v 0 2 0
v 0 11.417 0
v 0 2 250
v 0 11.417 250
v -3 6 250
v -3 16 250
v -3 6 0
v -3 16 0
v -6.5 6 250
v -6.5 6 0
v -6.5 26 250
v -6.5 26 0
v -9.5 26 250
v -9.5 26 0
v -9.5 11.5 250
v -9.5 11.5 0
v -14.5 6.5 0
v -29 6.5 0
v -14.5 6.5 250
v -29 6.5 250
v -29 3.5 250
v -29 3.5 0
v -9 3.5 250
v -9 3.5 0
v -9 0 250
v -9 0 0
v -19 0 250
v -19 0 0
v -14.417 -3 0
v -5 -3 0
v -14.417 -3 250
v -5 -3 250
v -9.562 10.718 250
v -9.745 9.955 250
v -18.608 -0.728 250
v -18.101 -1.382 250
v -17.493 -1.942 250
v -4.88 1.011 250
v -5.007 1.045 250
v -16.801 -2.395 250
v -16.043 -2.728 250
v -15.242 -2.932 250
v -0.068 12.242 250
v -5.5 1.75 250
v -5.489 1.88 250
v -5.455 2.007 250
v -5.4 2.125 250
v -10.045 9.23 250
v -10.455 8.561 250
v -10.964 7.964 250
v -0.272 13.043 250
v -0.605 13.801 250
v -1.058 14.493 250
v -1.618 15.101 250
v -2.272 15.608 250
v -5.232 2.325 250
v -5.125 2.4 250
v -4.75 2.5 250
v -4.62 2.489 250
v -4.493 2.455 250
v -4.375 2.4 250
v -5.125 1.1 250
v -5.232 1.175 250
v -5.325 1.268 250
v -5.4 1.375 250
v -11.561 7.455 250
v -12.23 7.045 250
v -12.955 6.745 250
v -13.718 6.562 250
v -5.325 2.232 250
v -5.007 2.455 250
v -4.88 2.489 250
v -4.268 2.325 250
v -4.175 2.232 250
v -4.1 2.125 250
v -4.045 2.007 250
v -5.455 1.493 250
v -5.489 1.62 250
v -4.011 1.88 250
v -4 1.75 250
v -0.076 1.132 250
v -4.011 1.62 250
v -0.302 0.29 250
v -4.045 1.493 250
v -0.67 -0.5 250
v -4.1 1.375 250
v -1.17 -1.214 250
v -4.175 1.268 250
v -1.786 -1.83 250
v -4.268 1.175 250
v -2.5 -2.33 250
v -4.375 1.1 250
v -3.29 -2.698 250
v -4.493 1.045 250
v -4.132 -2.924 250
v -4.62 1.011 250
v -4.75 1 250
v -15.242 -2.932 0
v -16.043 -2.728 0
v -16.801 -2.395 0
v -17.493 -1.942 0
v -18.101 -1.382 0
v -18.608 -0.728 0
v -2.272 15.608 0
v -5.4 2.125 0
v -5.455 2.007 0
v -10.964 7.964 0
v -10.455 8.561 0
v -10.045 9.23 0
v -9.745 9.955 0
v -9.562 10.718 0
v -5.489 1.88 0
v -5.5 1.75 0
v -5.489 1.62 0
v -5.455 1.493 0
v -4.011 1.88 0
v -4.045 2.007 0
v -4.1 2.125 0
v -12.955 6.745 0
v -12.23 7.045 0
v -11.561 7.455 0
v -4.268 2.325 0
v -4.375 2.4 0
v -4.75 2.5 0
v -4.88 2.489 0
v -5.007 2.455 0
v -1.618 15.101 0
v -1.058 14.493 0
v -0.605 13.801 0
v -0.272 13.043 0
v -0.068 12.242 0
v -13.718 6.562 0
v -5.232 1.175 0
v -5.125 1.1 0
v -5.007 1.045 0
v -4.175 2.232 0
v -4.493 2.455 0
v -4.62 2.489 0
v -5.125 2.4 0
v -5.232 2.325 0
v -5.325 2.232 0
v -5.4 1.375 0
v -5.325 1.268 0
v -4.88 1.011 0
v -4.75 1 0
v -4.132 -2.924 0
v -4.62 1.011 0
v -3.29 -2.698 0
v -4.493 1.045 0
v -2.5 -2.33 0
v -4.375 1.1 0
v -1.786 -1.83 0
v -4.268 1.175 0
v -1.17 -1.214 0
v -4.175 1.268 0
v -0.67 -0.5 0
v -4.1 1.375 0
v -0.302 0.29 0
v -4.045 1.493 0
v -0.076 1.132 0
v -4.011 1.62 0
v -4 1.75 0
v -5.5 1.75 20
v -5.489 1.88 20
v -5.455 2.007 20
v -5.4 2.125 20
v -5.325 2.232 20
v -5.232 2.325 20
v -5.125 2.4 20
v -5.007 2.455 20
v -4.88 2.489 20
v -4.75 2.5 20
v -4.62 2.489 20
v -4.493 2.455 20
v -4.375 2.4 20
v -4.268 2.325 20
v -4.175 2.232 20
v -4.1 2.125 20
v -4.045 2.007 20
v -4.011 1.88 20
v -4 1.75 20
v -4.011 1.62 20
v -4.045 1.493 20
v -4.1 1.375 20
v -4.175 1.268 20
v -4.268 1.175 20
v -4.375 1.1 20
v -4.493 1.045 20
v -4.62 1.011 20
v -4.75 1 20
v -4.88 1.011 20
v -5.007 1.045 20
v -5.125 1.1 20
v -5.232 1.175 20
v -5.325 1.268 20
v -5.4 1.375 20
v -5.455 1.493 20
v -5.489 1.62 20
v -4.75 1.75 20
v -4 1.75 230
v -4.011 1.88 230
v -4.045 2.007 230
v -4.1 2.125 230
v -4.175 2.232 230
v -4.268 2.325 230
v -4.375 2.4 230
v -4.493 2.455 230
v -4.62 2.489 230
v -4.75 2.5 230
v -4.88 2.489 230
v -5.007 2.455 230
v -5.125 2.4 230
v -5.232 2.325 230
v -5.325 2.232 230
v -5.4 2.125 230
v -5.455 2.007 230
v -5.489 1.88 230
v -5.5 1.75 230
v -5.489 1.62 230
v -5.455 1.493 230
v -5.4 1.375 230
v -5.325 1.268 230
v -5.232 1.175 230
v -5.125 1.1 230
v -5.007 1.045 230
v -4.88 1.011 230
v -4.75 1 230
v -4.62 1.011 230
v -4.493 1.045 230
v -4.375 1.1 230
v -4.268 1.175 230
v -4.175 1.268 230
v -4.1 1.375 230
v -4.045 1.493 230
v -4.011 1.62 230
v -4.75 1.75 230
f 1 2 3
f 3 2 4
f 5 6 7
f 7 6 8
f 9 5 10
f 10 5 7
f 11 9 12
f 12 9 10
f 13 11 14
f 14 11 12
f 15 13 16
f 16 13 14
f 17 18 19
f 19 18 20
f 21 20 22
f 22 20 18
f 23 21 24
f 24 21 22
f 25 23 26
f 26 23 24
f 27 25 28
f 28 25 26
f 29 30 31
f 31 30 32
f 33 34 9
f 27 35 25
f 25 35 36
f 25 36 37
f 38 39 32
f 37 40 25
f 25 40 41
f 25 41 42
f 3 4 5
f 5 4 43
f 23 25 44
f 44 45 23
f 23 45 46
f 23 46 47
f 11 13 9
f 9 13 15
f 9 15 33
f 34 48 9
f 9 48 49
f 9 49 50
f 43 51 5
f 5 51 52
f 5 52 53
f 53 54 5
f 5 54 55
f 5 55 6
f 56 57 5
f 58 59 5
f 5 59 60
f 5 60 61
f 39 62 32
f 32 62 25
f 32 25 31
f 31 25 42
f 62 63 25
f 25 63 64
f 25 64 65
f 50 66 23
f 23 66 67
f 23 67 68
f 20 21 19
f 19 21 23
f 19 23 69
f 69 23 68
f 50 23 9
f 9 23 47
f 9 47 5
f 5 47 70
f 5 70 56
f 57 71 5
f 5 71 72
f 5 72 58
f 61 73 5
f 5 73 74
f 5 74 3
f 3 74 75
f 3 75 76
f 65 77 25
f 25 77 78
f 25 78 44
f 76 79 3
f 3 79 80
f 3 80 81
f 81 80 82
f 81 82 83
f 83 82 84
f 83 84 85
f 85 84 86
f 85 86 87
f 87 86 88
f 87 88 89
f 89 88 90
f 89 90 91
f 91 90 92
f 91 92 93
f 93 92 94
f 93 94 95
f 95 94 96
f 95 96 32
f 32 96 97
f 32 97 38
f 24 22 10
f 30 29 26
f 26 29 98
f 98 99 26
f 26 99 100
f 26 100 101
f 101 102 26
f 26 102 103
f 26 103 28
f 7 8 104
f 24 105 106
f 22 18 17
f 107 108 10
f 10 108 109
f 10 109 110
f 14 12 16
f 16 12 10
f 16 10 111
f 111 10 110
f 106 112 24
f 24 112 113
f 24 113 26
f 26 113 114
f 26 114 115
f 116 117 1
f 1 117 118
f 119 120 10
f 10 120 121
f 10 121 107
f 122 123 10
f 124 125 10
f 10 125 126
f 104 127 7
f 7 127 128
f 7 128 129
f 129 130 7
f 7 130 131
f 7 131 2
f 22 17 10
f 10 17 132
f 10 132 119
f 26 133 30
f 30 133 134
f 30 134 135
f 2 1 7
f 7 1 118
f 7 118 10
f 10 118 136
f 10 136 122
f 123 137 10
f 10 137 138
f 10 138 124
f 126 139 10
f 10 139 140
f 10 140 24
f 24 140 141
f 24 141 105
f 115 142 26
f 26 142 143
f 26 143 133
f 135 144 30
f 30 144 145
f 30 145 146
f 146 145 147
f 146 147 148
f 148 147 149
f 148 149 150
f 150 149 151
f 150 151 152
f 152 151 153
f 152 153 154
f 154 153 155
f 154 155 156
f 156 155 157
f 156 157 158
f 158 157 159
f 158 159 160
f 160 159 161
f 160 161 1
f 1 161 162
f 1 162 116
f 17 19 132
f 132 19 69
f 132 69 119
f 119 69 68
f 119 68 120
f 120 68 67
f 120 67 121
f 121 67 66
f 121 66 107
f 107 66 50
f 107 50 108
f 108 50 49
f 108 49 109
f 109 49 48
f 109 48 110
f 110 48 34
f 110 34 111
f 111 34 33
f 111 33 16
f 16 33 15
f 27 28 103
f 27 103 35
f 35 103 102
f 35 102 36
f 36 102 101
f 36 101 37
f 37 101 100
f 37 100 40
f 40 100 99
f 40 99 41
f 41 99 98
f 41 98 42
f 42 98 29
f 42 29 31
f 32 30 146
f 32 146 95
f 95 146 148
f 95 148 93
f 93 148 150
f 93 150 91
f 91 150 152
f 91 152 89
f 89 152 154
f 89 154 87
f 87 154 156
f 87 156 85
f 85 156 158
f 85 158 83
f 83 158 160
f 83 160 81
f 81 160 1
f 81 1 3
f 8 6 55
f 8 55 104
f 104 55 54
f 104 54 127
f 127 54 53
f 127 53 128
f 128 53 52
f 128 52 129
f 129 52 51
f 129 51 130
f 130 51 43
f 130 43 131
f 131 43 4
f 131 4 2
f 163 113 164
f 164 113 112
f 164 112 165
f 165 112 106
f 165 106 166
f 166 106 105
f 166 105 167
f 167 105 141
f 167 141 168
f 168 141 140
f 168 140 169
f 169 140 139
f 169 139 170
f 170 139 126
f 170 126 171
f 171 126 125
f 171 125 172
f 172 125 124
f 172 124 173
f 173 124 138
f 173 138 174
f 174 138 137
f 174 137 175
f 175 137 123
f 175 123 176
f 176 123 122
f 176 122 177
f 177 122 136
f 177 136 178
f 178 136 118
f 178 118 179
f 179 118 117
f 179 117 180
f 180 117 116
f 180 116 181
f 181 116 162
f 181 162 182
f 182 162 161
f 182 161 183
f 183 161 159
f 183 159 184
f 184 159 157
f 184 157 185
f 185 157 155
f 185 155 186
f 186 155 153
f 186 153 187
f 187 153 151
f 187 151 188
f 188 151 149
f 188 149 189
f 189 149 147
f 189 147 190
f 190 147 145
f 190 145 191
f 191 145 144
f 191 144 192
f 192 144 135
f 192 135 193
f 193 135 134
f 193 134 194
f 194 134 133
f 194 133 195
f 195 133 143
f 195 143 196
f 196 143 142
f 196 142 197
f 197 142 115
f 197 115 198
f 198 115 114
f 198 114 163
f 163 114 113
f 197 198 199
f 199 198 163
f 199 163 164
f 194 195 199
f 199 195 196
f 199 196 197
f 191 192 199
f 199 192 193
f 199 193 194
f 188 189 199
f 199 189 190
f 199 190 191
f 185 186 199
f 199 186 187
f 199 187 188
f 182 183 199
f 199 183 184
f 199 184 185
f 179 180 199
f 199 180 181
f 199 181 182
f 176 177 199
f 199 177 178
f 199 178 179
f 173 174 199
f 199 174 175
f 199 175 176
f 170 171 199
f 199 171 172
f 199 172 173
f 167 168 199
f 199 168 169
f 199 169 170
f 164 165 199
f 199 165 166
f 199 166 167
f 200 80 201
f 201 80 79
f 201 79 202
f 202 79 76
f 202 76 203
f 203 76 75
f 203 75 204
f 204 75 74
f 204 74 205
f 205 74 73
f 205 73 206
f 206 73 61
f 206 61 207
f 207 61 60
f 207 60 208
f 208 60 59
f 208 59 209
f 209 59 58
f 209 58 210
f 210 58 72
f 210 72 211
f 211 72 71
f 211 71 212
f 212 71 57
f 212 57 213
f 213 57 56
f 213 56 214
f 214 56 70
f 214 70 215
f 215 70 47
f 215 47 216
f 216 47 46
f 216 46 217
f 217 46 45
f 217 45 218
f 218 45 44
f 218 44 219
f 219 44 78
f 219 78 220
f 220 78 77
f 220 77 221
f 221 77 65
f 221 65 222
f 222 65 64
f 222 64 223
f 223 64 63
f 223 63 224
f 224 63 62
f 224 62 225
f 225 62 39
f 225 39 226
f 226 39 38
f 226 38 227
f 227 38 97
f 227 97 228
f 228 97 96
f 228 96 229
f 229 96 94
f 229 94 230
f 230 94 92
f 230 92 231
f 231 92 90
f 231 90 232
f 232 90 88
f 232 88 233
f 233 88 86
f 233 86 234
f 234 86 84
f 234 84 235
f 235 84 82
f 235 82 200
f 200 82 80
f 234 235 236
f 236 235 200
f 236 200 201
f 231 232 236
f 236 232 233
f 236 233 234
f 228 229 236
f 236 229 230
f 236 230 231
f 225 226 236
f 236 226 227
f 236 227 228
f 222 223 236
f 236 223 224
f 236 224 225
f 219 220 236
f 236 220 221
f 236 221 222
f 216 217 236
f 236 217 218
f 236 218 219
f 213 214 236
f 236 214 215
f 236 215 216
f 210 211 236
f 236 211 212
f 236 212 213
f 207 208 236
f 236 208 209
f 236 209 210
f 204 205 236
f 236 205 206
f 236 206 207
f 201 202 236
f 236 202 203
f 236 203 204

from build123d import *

# Parameters (mm, degrees)
BOSS_EXTRUDE1_DEPTH = 250
FILLET1_R           = 5
SKETCH4_R           = 0.75
CUT_EXTRUDE1_DEPTH  = 20
CUT_EXTRUDE2_START  = -20
SKETCH5_R           = 0.75
CUT_EXTRUDE2_DEPTH  = 20


with BuildPart() as part:
    # Sketch1 → Boss-Extrude1 (new body)
    with BuildSketch(Plane.XY):
        Polygon((0, 0), (0, 16), (-3, 16), (-3, 6), (-6.5, 6), (-6.5, 26), (-9.5, 26), (-9.5, 6.5), (-29, 6.5), (-29, 3.5), (-9, 3.5), (-9, 0), (-19, 0), (-19, -3), (0, -3), align=None)
    extrude(amount=BOSS_EXTRUDE1_DEPTH)

    # Fillet1
    # the kernel refuses this fillet: 5 mm, written as the material it adds along each edge
    with BuildSketch(Plane(origin=(-9.5, 6.5, 0), x_dir=(-1, 0, 0), z_dir=(0, 0, 1))) as fillet1_piece_1:
        with BuildLine():
            CenterArc((FILLET1_R, -FILLET1_R), FILLET1_R, 90, 90)
            Line((0, -FILLET1_R), (0, 0))
            Line((0, 0), (FILLET1_R, 0))
        make_face()
    extrude(amount=250)
    # the kernel refuses this fillet: 5 mm, written as the material it takes off along each edge
    with BuildSketch(Plane(origin=(-19, -3, -11.456439237), x_dir=(1, 0, 0), z_dir=(0, 0, 1))) as fillet1_2_piece_1:
        with BuildLine():
            CenterArc((4.582575695, 5), FILLET1_R, 203.578178478, 66.421821522)
            Line((0, 3), (0, 0))
            Line((0, 0), (4.582575695, 0))
        make_face()
    extrude(amount=272.912878475, mode=Mode.SUBTRACT)
    with BuildSketch(Plane(origin=(0, -3, -12.5), x_dir=(0, 1, 0), z_dir=(0, 0, 1))) as fillet1_2_piece_2:
        with BuildLine():
            CenterArc((FILLET1_R, FILLET1_R), FILLET1_R, 180, 90)
            Line((0, FILLET1_R), (0, 0))
            Line((0, 0), (FILLET1_R, 0))
        make_face()
    extrude(amount=275, mode=Mode.SUBTRACT)
    with BuildSketch(Plane(origin=(0, 16, -11.456439237), x_dir=(0, -1, 0), z_dir=(0, 0, 1))) as fillet1_2_piece_3:
        with BuildLine():
            CenterArc((4.582575695, -5), FILLET1_R, 90, 66.421821522)
            Line((0, -3), (0, 0))
            Line((0, 0), (4.582575695, 0))
        make_face()
    extrude(amount=272.912878475, mode=Mode.SUBTRACT)

    # Sketch4 → Cut-Extrude1 (cut)
    with BuildSketch(Plane(origin=(0, 0, 0), x_dir=(-1, 0, 0), z_dir=(0, 0, -1))):
        with Locations((4.75, 1.75)):
            Circle(SKETCH4_R)
    extrude(amount=-CUT_EXTRUDE1_DEPTH, mode=Mode.SUBTRACT)

    # Sketch5 → Cut-Extrude2 (cut)
    with BuildSketch(Plane.XY.offset(250).offset(CUT_EXTRUDE2_START)):
        with Locations(Location((-4.75, 1.75, 0), (0, 0, 180))):
            Circle(SKETCH5_R)
    extrude(amount=CUT_EXTRUDE2_DEPTH, mode=Mode.SUBTRACT)


solid = part.part
